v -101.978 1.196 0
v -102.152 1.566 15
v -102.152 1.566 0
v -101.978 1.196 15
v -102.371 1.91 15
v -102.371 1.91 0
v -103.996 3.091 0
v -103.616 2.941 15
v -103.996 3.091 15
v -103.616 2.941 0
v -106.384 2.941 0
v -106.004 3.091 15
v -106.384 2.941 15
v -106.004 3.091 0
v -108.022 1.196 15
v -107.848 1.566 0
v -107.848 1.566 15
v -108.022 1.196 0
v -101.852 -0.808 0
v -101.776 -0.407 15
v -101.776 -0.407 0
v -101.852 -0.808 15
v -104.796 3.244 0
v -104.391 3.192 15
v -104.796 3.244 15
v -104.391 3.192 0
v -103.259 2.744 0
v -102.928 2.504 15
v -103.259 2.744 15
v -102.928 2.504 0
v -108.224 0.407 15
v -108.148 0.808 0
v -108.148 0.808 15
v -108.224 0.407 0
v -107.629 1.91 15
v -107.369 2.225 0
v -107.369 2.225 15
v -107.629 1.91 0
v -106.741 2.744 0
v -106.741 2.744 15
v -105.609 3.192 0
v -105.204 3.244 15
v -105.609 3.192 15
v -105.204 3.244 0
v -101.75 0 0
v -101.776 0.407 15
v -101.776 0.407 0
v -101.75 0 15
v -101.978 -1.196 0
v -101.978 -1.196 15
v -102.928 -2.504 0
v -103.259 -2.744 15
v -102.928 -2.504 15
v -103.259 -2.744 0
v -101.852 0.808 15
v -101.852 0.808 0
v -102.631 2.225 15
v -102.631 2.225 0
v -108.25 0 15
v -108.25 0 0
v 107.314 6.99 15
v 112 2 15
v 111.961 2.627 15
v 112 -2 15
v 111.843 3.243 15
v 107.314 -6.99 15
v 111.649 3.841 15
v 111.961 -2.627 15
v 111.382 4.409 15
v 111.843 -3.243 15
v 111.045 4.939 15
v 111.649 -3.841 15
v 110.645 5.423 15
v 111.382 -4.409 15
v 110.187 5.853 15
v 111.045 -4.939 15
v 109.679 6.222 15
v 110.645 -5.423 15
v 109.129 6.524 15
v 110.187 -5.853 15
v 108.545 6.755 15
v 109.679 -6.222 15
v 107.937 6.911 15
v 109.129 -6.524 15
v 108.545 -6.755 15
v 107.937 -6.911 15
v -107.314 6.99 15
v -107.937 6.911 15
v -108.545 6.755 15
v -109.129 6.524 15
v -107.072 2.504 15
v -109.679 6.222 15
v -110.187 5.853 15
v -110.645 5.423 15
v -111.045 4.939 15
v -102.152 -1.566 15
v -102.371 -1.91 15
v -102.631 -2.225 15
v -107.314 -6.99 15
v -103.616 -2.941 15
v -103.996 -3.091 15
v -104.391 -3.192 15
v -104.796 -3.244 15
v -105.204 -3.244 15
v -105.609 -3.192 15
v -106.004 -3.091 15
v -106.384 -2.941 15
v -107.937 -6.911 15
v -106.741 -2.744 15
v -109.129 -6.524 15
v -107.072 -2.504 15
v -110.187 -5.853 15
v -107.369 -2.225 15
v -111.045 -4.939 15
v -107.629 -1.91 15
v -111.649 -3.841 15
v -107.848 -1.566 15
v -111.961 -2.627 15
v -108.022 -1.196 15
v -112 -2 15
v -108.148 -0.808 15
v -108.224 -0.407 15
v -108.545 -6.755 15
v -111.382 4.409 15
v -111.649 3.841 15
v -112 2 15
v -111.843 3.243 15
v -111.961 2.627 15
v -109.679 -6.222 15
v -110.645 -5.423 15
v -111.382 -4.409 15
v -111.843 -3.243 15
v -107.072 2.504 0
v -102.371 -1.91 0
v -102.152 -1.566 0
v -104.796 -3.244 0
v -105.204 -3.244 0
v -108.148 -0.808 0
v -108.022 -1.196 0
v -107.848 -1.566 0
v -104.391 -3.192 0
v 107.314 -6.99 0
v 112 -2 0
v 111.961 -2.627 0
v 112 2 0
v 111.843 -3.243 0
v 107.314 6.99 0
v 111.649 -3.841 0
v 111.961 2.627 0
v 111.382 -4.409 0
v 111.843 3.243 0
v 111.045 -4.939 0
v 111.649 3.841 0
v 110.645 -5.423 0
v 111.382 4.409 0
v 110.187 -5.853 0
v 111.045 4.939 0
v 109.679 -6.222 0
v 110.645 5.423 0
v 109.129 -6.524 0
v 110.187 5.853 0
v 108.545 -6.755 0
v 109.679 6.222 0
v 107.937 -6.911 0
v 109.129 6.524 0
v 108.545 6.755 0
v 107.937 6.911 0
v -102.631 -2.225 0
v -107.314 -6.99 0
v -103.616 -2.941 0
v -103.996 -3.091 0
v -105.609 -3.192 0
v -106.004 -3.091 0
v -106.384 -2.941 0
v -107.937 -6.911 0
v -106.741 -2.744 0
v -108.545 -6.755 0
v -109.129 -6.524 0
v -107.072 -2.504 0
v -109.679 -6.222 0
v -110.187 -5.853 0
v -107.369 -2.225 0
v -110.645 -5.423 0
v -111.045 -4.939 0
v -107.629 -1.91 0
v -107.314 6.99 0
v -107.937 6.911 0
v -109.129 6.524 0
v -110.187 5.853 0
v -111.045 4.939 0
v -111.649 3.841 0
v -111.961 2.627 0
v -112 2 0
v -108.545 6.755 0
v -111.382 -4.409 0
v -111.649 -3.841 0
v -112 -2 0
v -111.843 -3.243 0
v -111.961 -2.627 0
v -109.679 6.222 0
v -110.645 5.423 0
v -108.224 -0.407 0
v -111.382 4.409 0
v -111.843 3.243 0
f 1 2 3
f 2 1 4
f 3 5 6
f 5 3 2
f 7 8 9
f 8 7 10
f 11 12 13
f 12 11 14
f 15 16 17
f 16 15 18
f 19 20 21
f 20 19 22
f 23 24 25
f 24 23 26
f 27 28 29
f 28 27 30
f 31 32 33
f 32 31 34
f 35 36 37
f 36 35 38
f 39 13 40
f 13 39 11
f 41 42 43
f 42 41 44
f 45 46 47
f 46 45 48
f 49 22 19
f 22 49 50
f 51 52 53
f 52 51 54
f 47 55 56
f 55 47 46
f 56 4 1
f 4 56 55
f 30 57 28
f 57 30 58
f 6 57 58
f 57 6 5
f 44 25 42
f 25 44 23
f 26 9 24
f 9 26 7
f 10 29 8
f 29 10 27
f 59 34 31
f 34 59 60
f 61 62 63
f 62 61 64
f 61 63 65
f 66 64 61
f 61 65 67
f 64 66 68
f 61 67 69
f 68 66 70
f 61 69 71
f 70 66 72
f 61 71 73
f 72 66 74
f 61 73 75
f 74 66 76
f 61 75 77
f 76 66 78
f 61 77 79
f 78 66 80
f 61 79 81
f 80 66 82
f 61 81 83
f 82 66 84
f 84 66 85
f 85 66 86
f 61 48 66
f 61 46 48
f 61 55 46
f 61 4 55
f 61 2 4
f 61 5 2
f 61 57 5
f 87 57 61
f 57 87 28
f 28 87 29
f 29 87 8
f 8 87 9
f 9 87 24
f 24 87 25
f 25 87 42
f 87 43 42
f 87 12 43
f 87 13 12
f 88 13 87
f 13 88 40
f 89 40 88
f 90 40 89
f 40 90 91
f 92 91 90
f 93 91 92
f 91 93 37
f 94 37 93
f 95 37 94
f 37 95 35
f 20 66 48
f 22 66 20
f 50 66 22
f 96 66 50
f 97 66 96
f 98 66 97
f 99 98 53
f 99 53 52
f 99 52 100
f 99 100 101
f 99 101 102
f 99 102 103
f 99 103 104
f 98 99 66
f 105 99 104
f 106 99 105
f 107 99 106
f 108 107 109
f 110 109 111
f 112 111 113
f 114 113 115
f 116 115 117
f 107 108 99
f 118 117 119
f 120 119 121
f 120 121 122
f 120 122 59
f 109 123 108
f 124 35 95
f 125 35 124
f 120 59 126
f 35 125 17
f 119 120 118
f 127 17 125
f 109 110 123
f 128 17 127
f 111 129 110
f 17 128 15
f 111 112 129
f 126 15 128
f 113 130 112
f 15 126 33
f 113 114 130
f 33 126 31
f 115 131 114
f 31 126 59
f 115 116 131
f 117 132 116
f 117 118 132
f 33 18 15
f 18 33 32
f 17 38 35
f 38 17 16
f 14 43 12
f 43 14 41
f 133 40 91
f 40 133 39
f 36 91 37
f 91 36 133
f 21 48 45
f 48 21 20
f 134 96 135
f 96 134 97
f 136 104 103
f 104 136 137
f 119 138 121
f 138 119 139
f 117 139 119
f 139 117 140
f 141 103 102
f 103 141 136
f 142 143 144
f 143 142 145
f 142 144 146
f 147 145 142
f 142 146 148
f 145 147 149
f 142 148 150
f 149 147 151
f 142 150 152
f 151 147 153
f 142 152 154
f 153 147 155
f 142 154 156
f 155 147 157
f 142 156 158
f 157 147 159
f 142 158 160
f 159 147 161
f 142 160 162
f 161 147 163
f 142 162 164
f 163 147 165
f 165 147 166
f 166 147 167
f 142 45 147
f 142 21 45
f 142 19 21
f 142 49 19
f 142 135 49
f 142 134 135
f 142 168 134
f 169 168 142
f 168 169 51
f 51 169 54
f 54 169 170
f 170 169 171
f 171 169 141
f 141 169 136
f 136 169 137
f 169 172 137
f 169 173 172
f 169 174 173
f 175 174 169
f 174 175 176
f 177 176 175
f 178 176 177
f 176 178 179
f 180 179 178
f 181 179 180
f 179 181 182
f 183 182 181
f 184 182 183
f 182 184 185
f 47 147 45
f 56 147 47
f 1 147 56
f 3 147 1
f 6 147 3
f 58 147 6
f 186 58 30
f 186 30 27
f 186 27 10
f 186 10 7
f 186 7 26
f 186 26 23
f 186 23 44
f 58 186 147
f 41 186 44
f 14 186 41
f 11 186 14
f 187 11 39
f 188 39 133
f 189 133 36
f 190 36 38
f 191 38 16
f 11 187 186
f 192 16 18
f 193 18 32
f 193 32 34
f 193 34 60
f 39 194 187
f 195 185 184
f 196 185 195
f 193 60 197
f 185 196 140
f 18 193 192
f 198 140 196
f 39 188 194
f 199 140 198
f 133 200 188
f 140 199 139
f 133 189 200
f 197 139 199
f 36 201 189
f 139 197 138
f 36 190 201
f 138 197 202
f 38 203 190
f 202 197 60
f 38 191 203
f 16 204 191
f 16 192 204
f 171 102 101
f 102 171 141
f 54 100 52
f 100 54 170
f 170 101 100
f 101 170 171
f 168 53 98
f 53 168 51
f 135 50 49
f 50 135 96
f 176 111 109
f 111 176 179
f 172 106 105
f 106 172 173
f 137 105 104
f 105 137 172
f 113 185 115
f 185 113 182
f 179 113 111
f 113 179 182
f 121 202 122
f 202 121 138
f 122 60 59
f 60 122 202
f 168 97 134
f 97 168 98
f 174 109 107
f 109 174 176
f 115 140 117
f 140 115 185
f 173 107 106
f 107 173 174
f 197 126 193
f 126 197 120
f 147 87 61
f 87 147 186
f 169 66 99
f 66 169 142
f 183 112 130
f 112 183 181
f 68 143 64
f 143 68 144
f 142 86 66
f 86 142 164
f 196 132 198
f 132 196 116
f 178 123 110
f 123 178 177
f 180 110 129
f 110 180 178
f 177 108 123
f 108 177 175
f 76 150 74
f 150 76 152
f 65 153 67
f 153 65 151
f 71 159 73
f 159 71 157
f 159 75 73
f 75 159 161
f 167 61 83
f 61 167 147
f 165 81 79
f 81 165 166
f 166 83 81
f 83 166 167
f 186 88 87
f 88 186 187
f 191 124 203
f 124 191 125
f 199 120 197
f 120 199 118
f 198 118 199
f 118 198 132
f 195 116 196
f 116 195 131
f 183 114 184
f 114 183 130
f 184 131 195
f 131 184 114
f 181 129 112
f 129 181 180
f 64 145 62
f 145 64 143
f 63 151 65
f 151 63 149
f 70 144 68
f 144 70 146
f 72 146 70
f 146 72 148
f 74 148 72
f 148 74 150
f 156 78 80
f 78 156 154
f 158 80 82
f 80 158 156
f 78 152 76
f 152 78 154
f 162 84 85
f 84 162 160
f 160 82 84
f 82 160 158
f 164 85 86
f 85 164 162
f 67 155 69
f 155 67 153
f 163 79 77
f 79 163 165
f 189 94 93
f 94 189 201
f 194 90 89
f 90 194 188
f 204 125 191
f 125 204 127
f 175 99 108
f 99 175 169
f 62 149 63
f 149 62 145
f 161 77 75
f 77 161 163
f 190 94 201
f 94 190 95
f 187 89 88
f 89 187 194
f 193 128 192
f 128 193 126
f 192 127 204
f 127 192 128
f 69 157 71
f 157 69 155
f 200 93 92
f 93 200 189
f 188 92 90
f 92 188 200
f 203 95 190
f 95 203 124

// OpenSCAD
$fn = 50;


difference() {
	union() {
		hull() {
			translate(v = [-107.0000000000, 2.0000000000, 0]) {
				cylinder(h = 15, r = 5);
			}
			translate(v = [107.0000000000, 2.0000000000, 0]) {
				cylinder(h = 15, r = 5);
			}
			translate(v = [-107.0000000000, -2.0000000000, 0]) {
				cylinder(h = 15, r = 5);
			}
			translate(v = [107.0000000000, -2.0000000000, 0]) {
				cylinder(h = 15, r = 5);
			}
		}
	}
	union() {
		translate(v = [-105.0000000000, 0.0000000000, 0]) {
			cylinder(h = 15, r = 3.2500000000);
		}
		translate(v = [-105.0000000000, 0.0000000000, 0]) {
			cylinder(h = 15, r = 1.8000000000);
		}
		translate(v = [-105.0000000000, 0.0000000000, 0]) {
			cylinder(h = 15, r = 1.8000000000);
		}
		translate(v = [-105.0000000000, 0.0000000000, 0]) {
			cylinder(h = 15, r = 1.8000000000);
		}
	}
}
